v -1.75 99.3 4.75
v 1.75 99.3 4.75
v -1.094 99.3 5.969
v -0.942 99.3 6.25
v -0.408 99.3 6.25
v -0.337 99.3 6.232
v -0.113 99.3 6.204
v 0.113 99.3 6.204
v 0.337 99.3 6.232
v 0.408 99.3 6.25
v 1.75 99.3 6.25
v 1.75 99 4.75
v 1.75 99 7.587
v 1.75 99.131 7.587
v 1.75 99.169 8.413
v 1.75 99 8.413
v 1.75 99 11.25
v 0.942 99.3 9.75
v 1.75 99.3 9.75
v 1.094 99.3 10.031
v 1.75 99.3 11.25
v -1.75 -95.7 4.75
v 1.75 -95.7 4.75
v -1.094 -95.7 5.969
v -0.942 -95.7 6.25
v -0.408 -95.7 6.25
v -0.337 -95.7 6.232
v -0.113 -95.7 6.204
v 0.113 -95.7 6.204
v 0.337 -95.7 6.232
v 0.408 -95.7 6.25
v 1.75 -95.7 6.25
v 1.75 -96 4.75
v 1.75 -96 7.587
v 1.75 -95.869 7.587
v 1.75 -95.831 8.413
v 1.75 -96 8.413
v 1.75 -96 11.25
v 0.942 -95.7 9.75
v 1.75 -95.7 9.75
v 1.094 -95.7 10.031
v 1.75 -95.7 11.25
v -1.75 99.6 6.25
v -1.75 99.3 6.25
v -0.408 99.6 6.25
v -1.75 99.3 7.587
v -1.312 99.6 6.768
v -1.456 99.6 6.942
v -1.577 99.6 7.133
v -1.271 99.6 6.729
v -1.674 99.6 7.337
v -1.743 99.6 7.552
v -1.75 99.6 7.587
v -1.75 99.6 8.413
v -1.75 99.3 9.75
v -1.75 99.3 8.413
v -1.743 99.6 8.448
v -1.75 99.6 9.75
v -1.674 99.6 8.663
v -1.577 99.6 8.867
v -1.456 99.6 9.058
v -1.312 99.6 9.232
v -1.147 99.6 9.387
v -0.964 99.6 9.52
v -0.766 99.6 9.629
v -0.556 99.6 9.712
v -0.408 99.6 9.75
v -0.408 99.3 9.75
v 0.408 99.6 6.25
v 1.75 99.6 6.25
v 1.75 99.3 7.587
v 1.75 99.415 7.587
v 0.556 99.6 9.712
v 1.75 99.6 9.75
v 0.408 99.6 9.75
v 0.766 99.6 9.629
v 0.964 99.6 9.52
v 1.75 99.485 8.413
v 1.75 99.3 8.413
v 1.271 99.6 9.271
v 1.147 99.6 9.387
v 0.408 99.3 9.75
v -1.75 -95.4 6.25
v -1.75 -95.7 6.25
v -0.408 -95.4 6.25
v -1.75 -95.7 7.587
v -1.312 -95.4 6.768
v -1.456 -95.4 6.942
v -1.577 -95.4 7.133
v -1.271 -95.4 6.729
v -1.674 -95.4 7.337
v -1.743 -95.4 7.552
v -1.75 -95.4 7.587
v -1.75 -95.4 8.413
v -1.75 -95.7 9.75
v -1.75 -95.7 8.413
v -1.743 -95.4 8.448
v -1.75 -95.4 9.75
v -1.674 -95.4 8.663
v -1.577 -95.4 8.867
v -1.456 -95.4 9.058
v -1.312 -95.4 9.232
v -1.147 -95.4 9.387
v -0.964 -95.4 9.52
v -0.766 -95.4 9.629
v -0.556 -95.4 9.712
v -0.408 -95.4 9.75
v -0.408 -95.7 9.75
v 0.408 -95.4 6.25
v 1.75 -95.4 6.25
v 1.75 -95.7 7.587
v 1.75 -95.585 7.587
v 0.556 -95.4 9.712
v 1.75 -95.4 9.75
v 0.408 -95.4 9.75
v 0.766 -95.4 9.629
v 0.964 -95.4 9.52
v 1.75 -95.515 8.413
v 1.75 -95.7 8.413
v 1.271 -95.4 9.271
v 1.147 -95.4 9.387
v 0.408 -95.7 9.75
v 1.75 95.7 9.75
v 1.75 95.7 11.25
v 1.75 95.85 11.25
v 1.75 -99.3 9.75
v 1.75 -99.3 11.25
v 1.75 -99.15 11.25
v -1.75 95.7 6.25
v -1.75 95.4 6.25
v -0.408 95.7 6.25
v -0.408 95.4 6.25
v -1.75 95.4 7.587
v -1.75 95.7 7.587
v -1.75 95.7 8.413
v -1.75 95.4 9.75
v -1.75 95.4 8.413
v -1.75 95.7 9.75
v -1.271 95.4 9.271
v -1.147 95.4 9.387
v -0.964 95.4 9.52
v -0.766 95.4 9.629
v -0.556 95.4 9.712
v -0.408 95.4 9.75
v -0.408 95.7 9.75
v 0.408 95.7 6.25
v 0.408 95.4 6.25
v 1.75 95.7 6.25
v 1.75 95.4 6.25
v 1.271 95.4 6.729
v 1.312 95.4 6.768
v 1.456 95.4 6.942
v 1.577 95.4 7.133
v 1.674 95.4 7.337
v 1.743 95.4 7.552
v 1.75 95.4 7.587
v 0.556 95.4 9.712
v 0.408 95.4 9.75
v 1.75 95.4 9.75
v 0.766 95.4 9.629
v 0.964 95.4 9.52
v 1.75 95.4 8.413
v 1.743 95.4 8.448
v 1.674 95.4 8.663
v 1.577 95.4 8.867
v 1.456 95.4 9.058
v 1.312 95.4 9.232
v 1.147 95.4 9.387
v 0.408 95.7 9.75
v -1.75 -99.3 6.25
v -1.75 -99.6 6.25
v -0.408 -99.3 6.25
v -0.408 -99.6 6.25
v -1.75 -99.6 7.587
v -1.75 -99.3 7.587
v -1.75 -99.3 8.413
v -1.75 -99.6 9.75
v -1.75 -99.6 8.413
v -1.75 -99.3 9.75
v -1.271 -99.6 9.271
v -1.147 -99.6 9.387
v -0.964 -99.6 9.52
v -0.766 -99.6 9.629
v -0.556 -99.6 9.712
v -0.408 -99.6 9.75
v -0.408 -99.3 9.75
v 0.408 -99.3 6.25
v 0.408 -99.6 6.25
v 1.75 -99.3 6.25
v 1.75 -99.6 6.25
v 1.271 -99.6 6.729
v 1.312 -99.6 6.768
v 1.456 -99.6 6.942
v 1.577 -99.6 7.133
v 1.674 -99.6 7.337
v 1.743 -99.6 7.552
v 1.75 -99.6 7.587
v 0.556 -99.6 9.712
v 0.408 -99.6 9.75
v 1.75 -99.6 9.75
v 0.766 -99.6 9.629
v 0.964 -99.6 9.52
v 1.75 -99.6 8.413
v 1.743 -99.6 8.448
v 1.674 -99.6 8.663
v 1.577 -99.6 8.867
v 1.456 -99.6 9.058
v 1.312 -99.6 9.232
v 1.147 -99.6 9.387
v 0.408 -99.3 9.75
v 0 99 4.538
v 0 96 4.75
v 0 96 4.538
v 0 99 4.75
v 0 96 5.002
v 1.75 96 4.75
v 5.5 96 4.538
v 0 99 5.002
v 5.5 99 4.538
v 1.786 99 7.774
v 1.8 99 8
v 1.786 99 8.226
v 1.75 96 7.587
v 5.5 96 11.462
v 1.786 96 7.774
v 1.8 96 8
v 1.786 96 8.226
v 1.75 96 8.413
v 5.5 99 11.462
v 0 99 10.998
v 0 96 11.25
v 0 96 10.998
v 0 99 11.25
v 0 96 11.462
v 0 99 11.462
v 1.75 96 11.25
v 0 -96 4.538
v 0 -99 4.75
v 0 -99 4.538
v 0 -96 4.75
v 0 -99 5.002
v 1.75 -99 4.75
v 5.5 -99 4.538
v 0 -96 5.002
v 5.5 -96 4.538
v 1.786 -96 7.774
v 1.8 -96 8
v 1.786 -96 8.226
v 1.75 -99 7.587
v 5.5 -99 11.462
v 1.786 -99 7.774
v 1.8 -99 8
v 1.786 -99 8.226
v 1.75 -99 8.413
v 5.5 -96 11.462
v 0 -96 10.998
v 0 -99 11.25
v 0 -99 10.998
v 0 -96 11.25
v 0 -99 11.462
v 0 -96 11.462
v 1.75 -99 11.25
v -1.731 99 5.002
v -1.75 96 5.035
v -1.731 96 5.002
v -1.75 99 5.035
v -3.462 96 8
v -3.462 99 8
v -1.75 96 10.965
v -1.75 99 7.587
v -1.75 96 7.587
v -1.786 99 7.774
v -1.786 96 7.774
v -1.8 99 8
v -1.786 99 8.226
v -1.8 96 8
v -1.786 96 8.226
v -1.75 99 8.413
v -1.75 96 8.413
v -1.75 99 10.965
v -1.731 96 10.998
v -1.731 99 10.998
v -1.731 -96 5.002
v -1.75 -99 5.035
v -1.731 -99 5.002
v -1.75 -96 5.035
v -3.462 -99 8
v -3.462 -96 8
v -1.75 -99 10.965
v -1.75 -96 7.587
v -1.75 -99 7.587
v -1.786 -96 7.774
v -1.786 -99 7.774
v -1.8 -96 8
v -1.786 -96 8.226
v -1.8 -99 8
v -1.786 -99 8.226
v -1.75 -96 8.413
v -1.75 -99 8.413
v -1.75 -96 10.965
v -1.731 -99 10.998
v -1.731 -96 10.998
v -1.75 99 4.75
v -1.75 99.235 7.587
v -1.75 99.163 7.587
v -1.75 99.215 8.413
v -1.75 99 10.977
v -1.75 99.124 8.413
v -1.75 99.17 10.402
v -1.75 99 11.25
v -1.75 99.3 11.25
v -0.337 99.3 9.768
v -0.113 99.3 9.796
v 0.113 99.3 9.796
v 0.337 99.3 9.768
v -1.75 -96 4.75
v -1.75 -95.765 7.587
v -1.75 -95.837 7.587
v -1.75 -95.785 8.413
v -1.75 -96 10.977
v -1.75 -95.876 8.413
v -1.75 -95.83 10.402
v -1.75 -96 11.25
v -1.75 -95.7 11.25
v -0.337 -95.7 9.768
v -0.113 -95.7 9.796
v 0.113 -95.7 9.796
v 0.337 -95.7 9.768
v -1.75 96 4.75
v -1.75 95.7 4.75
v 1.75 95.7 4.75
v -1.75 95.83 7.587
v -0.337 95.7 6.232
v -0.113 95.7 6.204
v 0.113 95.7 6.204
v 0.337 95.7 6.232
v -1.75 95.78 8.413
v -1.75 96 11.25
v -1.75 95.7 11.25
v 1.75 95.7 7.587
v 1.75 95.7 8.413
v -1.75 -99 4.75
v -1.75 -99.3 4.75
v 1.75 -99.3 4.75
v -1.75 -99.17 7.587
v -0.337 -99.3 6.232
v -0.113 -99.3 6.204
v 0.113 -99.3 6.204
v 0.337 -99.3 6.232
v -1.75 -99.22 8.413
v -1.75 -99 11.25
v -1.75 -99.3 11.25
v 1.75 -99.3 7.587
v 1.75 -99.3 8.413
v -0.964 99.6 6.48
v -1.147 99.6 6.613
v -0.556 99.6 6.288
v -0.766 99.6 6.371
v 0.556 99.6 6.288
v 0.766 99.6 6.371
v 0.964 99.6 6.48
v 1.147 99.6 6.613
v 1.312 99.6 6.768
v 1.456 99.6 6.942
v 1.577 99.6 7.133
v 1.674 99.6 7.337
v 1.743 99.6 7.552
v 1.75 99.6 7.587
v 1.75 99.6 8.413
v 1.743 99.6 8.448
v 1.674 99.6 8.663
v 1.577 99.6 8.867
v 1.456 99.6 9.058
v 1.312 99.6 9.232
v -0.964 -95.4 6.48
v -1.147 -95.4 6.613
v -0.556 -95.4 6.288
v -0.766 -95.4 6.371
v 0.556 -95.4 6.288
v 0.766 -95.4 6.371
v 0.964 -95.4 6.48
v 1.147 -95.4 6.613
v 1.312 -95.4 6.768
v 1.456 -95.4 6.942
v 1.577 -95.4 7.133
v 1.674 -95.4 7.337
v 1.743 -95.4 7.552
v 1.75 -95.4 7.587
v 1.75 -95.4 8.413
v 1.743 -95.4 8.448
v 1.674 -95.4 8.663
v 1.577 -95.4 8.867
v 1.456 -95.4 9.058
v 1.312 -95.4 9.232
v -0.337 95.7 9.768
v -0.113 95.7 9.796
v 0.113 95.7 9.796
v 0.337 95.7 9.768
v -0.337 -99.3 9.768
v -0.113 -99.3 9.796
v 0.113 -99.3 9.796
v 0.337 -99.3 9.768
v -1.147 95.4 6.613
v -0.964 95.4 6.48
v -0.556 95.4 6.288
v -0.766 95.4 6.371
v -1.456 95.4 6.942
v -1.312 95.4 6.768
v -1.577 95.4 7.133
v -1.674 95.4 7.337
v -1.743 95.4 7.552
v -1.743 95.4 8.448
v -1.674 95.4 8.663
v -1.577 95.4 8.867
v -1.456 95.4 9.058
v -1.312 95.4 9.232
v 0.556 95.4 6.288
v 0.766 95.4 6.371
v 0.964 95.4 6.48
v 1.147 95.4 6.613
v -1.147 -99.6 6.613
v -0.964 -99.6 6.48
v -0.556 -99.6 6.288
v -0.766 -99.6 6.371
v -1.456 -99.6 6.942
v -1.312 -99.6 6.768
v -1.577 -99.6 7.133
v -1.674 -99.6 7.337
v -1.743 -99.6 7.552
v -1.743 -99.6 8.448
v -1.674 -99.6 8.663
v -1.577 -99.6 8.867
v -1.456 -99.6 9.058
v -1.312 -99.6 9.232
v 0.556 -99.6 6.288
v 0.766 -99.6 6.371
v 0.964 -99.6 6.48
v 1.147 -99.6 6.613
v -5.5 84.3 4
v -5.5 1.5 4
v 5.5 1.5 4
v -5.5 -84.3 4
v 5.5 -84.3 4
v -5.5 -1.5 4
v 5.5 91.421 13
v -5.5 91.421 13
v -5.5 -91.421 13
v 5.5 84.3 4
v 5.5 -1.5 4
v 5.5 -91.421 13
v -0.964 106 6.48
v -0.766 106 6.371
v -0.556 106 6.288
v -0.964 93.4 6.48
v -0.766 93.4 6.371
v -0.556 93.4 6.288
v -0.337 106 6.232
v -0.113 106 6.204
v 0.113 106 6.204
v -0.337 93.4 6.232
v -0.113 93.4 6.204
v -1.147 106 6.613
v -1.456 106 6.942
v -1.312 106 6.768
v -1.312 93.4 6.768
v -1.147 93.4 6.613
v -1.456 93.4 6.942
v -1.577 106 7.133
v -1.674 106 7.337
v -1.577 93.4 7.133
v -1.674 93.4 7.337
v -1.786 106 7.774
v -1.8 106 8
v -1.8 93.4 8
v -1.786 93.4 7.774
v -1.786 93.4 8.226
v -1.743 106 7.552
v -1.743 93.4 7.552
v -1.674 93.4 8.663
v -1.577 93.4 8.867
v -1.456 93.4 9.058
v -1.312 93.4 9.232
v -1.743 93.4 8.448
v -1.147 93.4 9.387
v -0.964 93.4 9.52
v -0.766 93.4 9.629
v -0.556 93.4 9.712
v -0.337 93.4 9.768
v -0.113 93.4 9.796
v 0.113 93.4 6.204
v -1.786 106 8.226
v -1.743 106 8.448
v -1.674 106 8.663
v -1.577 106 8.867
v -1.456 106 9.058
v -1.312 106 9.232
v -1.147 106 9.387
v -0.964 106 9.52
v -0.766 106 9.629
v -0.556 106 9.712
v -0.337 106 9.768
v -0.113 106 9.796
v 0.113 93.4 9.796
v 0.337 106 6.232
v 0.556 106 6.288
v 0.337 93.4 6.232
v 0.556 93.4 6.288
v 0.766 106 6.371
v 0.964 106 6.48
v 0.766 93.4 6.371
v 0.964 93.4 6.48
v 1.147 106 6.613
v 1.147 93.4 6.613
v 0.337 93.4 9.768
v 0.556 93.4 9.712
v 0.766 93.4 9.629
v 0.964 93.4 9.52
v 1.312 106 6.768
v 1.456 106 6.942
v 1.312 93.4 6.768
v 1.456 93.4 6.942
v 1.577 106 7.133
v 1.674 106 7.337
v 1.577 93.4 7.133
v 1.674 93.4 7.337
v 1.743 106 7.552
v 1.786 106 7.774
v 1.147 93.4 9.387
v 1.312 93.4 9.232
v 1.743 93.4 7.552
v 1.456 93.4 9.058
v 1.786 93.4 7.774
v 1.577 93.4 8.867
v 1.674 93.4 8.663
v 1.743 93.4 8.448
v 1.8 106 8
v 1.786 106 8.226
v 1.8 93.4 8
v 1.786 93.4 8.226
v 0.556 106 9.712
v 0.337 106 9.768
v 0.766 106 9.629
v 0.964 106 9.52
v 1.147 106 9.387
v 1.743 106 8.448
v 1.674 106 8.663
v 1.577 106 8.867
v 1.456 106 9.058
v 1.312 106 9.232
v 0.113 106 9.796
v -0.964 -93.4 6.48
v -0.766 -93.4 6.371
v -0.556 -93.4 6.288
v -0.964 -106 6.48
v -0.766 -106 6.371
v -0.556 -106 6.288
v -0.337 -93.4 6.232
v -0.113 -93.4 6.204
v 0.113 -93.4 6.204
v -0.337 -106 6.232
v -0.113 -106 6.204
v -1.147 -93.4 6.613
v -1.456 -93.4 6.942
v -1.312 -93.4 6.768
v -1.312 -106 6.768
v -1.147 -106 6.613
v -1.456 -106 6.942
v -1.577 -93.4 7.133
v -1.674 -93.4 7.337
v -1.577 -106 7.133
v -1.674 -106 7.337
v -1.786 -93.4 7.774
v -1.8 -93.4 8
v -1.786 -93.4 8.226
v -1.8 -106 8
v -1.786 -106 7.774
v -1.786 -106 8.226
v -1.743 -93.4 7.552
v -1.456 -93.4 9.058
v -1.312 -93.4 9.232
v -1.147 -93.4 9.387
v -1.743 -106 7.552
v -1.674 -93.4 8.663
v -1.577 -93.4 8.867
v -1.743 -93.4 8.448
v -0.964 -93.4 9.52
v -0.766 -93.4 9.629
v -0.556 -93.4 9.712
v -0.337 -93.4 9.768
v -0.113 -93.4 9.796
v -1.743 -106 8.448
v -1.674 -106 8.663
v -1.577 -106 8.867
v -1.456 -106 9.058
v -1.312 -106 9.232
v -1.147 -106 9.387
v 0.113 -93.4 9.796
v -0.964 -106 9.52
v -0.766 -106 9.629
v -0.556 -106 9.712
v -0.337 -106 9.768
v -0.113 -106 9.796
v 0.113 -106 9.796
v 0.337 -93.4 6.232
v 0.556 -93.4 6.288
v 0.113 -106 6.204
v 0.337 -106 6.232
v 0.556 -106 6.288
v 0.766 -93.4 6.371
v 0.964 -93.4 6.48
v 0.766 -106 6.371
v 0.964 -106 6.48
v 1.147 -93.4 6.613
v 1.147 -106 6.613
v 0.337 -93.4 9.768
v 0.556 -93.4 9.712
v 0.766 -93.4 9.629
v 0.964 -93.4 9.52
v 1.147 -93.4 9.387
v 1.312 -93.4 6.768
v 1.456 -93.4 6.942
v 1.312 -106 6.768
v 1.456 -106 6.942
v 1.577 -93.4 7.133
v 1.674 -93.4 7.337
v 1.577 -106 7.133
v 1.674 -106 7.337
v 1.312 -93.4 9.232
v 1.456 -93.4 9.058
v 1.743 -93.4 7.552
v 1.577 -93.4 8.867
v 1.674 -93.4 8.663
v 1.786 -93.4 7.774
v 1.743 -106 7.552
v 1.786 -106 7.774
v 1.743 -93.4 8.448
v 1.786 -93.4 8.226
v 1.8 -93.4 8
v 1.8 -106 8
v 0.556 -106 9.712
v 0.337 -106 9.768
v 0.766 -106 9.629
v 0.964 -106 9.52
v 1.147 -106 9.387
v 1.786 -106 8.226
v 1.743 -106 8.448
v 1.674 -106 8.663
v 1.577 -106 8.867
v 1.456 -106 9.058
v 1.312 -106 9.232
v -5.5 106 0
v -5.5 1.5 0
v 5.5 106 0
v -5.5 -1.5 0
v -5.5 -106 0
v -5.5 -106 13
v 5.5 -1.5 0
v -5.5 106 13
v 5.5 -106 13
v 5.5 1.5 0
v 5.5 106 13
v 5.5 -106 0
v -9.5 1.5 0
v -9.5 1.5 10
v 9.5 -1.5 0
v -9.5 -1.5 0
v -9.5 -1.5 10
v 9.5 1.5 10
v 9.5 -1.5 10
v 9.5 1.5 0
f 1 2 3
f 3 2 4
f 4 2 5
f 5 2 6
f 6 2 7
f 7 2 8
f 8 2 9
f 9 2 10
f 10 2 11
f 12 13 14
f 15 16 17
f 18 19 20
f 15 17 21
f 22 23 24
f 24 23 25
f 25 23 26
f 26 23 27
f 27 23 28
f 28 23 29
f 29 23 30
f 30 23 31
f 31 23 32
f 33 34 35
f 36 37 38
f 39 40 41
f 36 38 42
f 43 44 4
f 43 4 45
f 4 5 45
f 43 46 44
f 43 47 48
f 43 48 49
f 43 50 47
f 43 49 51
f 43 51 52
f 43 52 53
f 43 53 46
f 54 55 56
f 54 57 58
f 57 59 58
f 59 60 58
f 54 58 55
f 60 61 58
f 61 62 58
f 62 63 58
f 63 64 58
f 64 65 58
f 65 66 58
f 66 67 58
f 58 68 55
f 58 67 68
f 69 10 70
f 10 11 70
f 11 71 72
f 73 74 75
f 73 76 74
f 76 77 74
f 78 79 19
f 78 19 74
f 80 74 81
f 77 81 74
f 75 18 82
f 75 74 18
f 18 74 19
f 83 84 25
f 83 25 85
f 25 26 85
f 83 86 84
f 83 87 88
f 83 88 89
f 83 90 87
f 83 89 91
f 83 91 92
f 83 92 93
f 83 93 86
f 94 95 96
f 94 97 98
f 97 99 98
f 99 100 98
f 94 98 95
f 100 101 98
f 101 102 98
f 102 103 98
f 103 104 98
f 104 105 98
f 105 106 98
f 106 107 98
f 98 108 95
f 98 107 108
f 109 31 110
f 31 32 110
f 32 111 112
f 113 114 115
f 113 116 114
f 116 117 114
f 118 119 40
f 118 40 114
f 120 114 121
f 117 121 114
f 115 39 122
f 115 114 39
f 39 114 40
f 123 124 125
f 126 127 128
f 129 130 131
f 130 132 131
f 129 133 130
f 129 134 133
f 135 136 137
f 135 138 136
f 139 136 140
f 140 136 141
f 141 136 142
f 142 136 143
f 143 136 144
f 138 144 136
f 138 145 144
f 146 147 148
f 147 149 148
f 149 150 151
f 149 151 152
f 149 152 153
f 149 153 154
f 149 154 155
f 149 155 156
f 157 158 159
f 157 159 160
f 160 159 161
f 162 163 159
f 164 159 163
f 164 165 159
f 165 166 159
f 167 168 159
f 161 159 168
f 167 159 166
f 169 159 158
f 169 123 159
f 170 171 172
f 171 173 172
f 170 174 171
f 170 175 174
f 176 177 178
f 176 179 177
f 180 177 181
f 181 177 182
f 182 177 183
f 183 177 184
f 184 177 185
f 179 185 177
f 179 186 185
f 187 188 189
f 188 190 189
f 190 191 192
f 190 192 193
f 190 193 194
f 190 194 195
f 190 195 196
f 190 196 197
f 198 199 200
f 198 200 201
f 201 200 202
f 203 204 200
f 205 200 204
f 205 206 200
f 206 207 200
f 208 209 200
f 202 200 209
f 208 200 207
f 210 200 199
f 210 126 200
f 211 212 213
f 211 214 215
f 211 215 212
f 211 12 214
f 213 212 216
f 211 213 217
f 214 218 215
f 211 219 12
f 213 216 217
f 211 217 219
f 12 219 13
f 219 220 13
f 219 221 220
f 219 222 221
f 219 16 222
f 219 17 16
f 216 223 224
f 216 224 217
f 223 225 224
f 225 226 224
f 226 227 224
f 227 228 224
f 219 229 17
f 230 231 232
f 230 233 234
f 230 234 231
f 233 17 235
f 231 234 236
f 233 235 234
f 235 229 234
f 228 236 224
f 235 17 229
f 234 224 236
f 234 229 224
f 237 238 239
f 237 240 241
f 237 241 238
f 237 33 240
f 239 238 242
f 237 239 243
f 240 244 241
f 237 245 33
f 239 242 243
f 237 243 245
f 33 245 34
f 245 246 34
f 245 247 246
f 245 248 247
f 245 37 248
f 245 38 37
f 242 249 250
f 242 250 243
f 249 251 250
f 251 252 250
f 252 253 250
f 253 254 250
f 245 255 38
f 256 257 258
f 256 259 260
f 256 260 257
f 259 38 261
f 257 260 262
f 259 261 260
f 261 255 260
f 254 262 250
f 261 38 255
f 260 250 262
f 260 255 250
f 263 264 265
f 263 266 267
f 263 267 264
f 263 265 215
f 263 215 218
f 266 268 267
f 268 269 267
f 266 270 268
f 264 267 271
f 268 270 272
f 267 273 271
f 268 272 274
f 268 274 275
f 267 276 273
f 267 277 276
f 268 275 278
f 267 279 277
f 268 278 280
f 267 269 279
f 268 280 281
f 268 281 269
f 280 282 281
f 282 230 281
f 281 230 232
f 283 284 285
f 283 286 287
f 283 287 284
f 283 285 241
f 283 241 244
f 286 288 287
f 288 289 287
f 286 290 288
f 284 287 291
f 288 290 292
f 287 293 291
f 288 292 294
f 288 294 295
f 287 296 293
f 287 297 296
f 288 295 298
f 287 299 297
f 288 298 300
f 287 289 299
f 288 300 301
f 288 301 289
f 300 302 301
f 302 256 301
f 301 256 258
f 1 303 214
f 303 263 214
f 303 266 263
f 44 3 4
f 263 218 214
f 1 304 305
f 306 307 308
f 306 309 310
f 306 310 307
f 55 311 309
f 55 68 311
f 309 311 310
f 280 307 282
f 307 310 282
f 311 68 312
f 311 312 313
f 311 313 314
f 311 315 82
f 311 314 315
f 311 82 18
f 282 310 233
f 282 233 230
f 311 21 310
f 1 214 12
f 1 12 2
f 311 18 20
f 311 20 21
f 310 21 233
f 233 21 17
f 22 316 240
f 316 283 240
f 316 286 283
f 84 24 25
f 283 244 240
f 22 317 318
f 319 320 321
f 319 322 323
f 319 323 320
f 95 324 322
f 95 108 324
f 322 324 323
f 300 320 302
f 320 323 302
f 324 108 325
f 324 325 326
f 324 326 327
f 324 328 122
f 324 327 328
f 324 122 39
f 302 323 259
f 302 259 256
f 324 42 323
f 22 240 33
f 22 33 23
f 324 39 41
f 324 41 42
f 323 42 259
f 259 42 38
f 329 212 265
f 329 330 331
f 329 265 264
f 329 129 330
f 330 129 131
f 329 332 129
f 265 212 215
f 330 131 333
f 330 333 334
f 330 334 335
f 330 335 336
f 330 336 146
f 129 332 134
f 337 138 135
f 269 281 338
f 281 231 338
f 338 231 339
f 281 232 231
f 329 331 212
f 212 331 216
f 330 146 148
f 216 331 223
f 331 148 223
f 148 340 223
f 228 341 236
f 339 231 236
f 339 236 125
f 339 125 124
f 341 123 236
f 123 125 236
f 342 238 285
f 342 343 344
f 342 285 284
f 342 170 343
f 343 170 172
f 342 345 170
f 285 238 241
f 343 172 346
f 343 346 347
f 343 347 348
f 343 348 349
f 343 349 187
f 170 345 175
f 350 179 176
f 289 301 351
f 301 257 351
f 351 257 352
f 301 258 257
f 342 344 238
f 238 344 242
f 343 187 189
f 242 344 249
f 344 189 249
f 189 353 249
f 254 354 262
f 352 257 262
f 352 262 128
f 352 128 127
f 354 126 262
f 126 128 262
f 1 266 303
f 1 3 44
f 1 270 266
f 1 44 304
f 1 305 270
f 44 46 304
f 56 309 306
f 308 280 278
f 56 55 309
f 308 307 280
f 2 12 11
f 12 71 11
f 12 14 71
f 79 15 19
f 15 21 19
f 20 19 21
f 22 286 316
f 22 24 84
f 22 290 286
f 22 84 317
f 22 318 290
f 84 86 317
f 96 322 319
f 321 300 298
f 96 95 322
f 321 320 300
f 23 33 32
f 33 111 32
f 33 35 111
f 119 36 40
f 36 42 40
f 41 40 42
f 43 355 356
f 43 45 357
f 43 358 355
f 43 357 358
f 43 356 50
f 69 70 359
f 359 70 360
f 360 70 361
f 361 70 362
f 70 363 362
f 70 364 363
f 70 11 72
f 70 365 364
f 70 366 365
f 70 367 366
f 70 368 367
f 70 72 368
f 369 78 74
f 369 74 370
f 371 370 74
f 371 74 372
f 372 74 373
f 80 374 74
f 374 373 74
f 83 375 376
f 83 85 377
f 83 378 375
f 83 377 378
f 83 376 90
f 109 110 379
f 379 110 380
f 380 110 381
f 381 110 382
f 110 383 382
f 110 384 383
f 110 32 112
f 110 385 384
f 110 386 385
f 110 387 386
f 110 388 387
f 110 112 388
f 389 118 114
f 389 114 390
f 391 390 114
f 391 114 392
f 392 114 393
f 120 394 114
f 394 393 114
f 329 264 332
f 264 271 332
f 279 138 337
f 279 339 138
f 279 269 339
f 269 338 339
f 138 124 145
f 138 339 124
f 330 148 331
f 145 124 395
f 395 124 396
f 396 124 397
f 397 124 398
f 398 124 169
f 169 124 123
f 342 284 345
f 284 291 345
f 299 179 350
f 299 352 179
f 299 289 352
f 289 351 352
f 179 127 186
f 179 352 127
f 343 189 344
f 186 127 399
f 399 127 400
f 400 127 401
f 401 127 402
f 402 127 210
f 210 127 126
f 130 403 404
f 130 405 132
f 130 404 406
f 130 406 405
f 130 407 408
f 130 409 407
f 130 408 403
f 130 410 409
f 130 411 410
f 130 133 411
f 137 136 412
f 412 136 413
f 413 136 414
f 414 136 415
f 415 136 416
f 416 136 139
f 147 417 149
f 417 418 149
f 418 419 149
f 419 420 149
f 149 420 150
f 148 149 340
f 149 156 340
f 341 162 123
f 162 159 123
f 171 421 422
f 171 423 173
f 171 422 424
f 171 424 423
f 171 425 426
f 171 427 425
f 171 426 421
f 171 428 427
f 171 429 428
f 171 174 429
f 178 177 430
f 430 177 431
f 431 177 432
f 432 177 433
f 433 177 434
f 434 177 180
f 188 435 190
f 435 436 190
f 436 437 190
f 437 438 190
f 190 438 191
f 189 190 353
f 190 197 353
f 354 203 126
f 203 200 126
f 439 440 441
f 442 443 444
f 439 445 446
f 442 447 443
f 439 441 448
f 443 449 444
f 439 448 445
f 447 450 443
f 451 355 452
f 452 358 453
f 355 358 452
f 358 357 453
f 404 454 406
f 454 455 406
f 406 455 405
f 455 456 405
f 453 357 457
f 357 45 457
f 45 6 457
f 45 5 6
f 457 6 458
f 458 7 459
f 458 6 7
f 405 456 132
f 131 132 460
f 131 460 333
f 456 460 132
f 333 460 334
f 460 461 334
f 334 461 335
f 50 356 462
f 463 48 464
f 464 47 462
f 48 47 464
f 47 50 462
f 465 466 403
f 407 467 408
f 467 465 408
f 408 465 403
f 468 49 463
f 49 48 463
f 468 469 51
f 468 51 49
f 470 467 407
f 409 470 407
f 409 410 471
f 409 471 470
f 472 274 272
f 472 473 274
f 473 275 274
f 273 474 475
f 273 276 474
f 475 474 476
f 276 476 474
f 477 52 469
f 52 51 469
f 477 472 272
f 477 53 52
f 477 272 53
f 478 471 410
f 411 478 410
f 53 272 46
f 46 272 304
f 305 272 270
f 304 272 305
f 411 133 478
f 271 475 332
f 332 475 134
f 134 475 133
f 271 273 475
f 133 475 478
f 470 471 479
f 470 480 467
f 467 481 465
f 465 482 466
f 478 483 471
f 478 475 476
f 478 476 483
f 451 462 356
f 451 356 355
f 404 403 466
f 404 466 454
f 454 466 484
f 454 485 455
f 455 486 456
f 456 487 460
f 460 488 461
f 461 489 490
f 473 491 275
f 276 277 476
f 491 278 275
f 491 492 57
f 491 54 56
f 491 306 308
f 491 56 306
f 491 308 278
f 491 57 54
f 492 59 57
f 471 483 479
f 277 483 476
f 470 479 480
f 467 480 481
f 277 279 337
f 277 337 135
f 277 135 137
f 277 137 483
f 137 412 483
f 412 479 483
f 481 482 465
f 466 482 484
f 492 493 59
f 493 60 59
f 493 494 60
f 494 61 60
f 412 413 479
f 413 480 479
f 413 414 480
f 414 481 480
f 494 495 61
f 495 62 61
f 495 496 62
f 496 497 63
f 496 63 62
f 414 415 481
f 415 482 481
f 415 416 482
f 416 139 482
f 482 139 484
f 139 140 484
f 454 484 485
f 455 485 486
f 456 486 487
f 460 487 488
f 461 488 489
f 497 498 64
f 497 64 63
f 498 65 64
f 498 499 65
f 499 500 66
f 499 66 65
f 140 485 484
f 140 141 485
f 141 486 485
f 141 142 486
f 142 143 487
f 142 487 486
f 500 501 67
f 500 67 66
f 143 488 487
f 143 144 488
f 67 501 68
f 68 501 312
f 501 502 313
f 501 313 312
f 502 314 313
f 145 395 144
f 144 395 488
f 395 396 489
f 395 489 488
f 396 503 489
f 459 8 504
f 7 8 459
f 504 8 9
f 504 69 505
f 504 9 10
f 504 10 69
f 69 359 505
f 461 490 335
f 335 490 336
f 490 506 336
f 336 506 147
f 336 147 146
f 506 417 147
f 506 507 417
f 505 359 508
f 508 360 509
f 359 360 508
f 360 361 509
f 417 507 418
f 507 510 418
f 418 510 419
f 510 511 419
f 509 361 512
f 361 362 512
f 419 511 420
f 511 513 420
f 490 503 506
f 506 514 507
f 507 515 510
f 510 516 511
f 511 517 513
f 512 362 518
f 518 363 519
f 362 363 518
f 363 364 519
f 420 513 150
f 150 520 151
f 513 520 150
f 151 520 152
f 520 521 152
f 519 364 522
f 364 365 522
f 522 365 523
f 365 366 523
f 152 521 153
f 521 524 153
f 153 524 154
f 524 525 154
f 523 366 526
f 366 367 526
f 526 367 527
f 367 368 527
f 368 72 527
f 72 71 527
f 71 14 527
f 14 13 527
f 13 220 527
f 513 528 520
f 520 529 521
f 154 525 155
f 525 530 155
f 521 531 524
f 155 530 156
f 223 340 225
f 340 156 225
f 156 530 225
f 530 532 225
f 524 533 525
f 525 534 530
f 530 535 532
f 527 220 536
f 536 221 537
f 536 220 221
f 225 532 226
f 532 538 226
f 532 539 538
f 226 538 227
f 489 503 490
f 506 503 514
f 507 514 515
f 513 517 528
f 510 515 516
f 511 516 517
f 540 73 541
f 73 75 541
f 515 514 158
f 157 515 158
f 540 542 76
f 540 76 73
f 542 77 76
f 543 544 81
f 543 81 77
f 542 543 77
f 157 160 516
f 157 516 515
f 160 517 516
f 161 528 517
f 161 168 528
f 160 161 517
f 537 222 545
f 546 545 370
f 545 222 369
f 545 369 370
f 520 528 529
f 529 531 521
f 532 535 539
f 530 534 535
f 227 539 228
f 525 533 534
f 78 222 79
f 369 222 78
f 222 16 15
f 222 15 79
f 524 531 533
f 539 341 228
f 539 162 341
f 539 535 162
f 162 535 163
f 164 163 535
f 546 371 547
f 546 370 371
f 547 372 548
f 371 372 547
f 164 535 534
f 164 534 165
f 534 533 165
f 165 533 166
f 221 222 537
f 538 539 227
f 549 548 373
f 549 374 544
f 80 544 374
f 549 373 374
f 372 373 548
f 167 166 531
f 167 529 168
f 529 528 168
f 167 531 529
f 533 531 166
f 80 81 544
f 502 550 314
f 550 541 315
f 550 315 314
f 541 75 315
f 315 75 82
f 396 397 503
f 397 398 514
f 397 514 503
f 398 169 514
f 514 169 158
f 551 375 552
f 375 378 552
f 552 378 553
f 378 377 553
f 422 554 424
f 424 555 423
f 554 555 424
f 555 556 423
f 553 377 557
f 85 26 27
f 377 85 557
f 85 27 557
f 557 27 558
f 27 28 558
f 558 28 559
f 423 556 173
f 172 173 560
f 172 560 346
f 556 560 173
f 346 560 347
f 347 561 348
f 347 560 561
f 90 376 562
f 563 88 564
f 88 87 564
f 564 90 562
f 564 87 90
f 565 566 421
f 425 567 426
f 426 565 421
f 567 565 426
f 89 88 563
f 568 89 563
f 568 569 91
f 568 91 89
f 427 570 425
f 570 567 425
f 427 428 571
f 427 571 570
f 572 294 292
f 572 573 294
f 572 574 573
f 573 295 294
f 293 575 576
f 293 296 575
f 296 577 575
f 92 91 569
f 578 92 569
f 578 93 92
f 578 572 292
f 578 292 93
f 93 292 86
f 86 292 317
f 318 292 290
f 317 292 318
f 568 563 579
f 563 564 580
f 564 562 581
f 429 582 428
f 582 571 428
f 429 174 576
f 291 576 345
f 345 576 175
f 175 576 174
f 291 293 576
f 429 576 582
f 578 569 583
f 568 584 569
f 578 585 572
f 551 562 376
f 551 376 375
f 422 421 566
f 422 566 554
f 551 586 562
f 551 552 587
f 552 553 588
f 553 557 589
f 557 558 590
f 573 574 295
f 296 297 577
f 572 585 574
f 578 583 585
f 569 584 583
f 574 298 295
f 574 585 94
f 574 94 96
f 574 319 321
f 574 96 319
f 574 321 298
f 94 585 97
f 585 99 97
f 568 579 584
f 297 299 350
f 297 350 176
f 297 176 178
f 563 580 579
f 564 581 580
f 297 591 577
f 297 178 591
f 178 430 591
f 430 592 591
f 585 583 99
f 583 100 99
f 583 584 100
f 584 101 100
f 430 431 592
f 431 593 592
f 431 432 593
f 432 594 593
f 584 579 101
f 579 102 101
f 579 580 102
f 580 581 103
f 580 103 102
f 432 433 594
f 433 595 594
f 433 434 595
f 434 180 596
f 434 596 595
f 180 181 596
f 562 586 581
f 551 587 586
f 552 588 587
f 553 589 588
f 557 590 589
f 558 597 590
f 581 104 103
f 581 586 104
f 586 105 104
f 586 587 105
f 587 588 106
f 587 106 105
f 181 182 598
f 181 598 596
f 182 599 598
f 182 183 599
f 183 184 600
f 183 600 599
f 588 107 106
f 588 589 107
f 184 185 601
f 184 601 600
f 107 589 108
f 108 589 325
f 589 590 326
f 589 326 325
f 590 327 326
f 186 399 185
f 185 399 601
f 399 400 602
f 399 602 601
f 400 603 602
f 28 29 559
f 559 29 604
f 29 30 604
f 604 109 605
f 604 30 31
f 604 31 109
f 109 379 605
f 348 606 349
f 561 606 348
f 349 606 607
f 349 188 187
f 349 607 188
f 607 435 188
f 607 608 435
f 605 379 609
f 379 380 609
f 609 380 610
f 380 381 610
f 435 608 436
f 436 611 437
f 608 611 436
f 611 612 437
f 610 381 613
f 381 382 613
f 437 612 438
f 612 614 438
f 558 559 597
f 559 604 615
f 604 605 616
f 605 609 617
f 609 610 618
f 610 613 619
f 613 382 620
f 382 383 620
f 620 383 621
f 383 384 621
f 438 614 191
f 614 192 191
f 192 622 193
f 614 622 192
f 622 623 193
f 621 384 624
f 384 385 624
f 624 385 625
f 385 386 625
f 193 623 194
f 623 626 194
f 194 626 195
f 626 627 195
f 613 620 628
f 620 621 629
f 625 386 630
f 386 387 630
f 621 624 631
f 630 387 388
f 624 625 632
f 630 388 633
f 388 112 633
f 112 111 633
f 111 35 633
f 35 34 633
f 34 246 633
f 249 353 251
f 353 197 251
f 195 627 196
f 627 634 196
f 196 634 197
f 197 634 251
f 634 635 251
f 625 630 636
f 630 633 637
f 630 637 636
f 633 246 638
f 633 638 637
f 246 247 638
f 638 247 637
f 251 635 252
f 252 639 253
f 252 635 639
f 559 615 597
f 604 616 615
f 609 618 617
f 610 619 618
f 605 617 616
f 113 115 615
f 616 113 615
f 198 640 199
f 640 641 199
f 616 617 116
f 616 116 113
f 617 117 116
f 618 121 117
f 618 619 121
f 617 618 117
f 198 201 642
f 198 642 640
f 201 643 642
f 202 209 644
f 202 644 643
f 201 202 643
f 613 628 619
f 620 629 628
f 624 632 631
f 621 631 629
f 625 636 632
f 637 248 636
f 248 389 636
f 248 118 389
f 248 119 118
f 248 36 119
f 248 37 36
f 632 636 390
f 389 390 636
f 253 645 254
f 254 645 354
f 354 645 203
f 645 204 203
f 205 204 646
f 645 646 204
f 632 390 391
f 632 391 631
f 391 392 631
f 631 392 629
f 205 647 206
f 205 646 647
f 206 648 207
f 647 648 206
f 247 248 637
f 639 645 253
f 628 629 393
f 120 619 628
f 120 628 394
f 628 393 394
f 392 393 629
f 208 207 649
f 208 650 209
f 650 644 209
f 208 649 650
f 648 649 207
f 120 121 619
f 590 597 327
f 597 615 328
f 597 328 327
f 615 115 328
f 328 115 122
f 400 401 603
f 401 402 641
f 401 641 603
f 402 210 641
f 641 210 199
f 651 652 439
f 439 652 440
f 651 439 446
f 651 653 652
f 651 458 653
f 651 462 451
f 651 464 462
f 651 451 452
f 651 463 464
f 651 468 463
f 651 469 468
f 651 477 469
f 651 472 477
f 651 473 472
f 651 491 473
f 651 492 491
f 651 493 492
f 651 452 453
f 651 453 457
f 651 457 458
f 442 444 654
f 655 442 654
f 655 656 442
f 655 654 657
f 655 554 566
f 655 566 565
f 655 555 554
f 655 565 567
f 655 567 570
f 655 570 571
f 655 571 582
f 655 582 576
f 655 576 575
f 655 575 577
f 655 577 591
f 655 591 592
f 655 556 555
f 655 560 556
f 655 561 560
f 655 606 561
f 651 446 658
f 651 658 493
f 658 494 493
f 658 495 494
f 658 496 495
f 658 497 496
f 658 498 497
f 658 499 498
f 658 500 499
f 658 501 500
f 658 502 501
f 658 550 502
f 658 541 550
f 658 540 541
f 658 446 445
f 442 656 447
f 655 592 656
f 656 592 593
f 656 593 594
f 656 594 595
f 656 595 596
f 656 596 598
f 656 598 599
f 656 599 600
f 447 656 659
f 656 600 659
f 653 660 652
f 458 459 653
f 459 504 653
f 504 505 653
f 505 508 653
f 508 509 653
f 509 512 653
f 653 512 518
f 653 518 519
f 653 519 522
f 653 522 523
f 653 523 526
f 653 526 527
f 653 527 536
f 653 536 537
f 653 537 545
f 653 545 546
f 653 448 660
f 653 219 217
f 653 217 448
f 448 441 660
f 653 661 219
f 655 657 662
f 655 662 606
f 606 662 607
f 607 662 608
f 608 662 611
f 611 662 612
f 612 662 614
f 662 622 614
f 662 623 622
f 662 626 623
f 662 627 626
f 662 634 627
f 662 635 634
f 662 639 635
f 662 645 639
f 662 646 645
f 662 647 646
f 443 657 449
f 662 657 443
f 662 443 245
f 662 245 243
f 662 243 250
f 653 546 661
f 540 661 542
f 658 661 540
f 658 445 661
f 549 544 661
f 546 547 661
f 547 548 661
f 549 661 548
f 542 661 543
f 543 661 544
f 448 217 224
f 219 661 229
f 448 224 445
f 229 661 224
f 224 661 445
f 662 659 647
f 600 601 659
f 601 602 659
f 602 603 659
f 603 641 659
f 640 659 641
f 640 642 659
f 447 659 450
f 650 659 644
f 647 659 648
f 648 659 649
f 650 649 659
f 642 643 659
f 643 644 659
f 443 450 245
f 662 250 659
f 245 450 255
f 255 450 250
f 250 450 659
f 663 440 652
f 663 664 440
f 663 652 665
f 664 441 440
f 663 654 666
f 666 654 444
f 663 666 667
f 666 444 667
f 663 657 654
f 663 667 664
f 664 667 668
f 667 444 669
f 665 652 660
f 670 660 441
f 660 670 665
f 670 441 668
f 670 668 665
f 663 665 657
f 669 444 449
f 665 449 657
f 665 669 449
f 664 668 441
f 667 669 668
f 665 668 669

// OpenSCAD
$fn = 50;

difference() {
	union() {
		translate(v = [0, 106.0, 0]) {
			rotate(a = [90, 0, 0]) {
				difference() {
					union() {
						translate(v = [0, 0, 0]) {
							rotate(a = [0, 0, 0]) {
								difference() {
									union() {
										translate(v = [-5.5, 0, 0]) {
											cube(size = [11.0, 13.0, 212.0]);
										}
									}
									union() {
										translate(v = [0, 8.0, 7.0]) {
											rotate(a = [0, 0, 0]) {
												difference() {
													union() {
														translate(v = [-1.75, -3.25, -0.3]) {
															cube(size = [3.5, 6.5, 0.3]);
														}
														translate(v = [-1.75, -1.75, -0.6]) {
															cube(size = [3.5, 3.5, 0.3]);
														}
														translate(v = [-1.75, -3.25, 3]) {
															cube(size = [3.5, 6.5, 0.3]);
														}
														translate(v = [-1.75, -1.75, 3.3]) {
															cube(size = [3.5, 3.5, 0.3]);
														}
														translate(v = [0.0, -3.4619999999999997, 0]) {
															cube(size = [20, 6.9239999999999995, 3]);
														}
														linear_extrude(height = 3) {
															polygon(points = [[3.4619999999999997, 0.0], [1.7310000000000003, 2.9981799479017264], [-1.7309999999999992, 2.9981799479017264], [-3.4619999999999997, 4.2397272186481365e-16], [-1.7310000000000014, -2.998179947901726], [1.7309999999999977, -2.9981799479017277]]);
														}
														translate(v = [-1.75, -3.25, -0.3]) {
															cube(size = [3.5, 6.5, 0.3]);
														}
														translate(v = [-1.75, -1.75, -0.6]) {
															cube(size = [3.5, 3.5, 0.3]);
														}
														translate(v = [-1.75, -3.25, 3]) {
															cube(size = [3.5, 6.5, 0.3]);
														}
														translate(v = [-1.75, -1.75, 3.3]) {
															cube(size = [3.5, 3.5, 0.3]);
														}
														translate(v = [-1.75, -3.25, -0.3]) {
															cube(size = [3.5, 6.5, 0.3]);
														}
														translate(v = [-1.75, -1.75, -0.6]) {
															cube(size = [3.5, 3.5, 0.3]);
														}
														translate(v = [-1.75, -3.25, 3]) {
															cube(size = [3.5, 6.5, 0.3]);
														}
														translate(v = [-1.75, -1.75, 3.3]) {
															cube(size = [3.5, 3.5, 0.3]);
														}
													}
													union();
												}
											}
										}
										translate(v = [0, 8.0, 202.0]) {
											rotate(a = [0, 0, 0]) {
												difference() {
													union() {
														translate(v = [-1.75, -3.25, -0.3]) {
															cube(size = [3.5, 6.5, 0.3]);
														}
														translate(v = [-1.75, -1.75, -0.6]) {
															cube(size = [3.5, 3.5, 0.3]);
														}
														translate(v = [-1.75, -3.25, 3]) {
															cube(size = [3.5, 6.5, 0.3]);
														}
														translate(v = [-1.75, -1.75, 3.3]) {
															cube(size = [3.5, 3.5, 0.3]);
														}
														translate(v = [0.0, -3.4619999999999997, 0]) {
															cube(size = [20, 6.9239999999999995, 3]);
														}
														linear_extrude(height = 3) {
															polygon(points = [[3.4619999999999997, 0.0], [1.7310000000000003, 2.9981799479017264], [-1.7309999999999992, 2.9981799479017264], [-3.4619999999999997, 4.2397272186481365e-16], [-1.7310000000000014, -2.998179947901726], [1.7309999999999977, -2.9981799479017277]]);
														}
														translate(v = [-1.75, -3.25, -0.3]) {
															cube(size = [3.5, 6.5, 0.3]);
														}
														translate(v = [-1.75, -1.75, -0.6]) {
															cube(size = [3.5, 3.5, 0.3]);
														}
														translate(v = [-1.75, -3.25, 3]) {
															cube(size = [3.5, 6.5, 0.3]);
														}
														translate(v = [-1.75, -1.75, 3.3]) {
															cube(size = [3.5, 3.5, 0.3]);
														}
														translate(v = [-1.75, -3.25, -0.3]) {
															cube(size = [3.5, 6.5, 0.3]);
														}
														translate(v = [-1.75, -1.75, -0.6]) {
															cube(size = [3.5, 3.5, 0.3]);
														}
														translate(v = [-1.75, -3.25, 3]) {
															cube(size = [3.5, 6.5, 0.3]);
														}
														translate(v = [-1.75, -1.75, 3.3]) {
															cube(size = [3.5, 3.5, 0.3]);
														}
													}
													union();
												}
											}
										}
										translate(v = [-5.6, 0, 0]) {
											rotate(a = [90, 0, 90]) {
												linear_extrude(height = 11.2) {
													polygon(points = [[13.1, 14.5], [13.1, 197.5], [4.0, 190.3], [4.0, 21.7]]);
												}
											}
										}
										translate(v = [0, 8.0, -0.1]) {
											cylinder(h = 12.7, r = 1.8);
										}
										translate(v = [0, 8.0, 199.4]) {
											cylinder(h = 12.7, r = 1.8);
										}
									}
								}
							}
						}
						translate(v = [-9.5, 0, 104.5]) {
							cube(size = [19.0, 10.0, 3.0]);
						}
					}
					union();
				}
			}
		}
	}
	union();
}
